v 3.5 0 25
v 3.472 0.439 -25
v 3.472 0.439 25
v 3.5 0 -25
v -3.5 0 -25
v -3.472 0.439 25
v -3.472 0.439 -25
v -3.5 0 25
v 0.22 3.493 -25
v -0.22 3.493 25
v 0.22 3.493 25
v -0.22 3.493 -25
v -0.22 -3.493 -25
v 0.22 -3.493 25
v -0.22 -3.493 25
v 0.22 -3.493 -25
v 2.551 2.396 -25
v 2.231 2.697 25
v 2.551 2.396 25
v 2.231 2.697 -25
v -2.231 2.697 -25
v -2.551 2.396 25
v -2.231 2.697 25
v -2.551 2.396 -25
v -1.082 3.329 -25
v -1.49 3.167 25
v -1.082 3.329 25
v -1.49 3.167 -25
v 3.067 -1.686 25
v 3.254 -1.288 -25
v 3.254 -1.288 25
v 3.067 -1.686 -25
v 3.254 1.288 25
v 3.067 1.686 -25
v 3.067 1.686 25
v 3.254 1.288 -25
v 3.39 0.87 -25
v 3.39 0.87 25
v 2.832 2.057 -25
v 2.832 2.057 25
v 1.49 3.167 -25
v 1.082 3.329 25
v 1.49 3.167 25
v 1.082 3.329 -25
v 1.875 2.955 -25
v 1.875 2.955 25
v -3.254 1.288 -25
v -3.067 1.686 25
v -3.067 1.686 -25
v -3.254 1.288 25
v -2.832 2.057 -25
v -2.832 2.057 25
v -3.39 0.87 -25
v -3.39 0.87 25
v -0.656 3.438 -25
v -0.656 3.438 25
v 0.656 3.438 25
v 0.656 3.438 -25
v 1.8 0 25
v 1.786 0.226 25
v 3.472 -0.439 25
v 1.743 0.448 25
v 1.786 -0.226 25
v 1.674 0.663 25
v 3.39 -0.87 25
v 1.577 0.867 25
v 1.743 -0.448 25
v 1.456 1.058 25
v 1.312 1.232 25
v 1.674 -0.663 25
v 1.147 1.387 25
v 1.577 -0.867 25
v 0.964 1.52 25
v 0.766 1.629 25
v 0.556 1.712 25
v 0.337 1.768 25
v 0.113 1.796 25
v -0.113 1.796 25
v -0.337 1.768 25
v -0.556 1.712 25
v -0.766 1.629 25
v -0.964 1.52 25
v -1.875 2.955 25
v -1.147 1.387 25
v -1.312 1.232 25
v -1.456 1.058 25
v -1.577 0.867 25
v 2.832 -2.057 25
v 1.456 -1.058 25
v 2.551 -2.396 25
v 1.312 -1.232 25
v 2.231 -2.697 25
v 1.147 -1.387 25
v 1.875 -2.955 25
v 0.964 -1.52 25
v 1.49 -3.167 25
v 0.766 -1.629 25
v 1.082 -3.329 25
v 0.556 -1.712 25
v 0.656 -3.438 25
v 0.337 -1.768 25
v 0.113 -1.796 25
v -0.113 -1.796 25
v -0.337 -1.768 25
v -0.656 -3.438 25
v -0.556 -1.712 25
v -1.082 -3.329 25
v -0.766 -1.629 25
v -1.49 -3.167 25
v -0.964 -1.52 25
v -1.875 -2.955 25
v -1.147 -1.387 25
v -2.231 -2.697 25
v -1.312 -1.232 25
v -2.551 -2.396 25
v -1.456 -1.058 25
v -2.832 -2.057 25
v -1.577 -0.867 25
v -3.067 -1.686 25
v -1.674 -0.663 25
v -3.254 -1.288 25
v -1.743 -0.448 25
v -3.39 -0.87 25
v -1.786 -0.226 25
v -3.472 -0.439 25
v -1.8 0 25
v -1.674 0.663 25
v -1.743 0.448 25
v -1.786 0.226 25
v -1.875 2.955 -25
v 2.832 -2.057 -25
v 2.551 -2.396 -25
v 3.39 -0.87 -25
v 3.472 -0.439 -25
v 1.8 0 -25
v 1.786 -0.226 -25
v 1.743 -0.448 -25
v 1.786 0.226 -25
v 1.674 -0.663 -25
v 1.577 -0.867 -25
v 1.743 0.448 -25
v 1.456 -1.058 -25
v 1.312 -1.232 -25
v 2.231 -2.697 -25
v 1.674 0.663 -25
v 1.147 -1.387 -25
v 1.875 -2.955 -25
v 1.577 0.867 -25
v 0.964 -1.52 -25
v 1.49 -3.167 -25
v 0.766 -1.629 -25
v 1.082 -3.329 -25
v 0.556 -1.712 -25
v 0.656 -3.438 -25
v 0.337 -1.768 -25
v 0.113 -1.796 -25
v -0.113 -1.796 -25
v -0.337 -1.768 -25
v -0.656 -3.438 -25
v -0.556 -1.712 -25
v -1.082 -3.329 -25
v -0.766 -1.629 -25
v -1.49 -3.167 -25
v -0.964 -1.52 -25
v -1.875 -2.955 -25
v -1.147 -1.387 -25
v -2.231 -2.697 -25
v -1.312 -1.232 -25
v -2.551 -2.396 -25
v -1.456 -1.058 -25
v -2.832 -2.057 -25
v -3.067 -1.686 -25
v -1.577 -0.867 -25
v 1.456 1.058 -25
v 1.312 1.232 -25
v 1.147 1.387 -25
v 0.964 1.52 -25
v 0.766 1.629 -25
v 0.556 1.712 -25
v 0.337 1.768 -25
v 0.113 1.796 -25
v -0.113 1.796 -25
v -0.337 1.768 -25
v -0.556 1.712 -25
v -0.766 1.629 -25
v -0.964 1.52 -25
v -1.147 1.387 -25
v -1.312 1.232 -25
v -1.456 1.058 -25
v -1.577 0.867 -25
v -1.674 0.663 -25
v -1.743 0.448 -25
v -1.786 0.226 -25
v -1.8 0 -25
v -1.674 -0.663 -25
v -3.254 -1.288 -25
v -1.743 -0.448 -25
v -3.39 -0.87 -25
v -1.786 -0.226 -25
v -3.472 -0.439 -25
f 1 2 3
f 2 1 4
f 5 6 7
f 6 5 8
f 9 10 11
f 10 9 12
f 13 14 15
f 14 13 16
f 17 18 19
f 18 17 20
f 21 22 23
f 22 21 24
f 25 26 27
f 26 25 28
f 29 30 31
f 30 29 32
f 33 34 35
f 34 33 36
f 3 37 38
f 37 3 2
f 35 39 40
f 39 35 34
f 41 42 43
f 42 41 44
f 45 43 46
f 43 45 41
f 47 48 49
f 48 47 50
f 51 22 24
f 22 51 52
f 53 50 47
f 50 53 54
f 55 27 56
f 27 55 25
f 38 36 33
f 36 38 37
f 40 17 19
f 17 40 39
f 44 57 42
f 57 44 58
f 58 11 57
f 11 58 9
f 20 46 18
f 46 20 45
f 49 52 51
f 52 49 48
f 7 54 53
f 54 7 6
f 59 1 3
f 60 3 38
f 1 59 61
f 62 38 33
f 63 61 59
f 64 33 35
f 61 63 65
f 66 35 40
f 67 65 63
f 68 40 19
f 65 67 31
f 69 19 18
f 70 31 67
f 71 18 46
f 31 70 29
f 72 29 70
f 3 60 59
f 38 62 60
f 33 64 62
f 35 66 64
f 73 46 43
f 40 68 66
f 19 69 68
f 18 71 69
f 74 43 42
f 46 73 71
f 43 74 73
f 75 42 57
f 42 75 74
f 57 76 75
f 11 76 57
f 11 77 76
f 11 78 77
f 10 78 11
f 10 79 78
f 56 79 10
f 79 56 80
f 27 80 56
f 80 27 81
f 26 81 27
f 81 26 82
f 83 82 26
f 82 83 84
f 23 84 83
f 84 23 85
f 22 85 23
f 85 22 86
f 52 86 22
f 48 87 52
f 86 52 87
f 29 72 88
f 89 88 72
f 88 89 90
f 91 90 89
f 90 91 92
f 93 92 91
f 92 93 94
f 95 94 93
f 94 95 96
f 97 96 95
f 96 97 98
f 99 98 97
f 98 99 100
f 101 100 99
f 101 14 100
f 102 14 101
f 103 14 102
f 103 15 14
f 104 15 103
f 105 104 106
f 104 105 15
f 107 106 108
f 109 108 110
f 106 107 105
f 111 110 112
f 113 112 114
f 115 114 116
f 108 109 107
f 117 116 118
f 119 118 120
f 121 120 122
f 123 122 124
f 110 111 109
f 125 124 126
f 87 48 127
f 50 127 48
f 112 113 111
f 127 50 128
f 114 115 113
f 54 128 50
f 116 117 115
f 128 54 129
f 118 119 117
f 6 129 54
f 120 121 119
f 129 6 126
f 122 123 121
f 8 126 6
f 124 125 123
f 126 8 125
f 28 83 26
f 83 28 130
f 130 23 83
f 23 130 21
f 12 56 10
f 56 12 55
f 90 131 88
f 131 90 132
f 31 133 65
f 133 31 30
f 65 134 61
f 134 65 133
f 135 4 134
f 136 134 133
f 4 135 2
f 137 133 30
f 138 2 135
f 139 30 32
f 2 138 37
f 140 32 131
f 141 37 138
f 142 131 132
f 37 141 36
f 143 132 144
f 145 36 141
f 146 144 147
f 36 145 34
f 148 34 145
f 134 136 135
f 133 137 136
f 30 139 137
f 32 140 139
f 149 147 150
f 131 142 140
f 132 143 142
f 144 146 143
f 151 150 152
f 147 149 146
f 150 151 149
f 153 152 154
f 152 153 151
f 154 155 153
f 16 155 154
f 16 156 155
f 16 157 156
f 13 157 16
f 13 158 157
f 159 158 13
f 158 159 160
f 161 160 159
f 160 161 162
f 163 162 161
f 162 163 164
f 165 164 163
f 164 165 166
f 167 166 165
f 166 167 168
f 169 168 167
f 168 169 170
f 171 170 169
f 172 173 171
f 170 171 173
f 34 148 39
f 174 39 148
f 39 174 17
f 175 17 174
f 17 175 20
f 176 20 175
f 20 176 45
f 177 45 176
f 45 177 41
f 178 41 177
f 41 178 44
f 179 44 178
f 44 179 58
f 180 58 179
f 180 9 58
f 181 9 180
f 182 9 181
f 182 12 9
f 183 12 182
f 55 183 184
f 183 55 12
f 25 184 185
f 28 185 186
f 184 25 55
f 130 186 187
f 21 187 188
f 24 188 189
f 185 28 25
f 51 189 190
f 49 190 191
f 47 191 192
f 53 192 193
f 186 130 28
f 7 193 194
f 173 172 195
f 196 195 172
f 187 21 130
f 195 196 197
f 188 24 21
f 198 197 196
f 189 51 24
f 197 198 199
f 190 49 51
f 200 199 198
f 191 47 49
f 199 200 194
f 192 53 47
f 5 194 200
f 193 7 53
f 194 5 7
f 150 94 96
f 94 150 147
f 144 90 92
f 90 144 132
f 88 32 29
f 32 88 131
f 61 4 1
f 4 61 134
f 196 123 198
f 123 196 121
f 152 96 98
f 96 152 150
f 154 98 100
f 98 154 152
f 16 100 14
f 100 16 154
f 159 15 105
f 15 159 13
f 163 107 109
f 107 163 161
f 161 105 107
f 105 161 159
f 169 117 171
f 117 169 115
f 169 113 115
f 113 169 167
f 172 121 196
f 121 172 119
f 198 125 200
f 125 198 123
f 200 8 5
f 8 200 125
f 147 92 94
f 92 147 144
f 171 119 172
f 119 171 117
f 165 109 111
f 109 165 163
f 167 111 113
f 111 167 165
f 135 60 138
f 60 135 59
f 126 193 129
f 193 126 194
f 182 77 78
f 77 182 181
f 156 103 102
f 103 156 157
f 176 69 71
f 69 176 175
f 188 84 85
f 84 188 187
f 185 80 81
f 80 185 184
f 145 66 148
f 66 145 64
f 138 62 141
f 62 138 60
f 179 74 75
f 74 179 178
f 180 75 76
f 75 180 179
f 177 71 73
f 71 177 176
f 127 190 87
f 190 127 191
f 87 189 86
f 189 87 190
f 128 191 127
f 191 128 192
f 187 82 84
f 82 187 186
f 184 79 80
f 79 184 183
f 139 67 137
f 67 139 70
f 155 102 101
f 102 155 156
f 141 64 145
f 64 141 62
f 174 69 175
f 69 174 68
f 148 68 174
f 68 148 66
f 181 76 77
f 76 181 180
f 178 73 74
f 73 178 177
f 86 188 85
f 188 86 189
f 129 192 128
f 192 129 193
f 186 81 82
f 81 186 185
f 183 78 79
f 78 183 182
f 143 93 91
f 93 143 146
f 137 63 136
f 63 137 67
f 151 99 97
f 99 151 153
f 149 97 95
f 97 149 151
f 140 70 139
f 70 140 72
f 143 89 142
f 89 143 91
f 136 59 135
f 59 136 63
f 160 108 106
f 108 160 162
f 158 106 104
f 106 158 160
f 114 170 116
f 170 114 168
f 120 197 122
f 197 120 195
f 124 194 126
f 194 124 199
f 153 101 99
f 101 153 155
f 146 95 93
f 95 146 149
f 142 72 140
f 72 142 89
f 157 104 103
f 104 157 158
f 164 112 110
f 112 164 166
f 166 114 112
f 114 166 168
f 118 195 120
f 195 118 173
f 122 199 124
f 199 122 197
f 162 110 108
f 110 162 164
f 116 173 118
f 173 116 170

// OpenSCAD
$fn = 50;


difference() {
	union() {
		translate(v = [0, 0, -25.0000000000]) {
			cylinder(h = 50, r = 3.5000000000);
		}
	}
	union() {
		translate(v = [0, 0, -100.0000000000]) {
			cylinder(h = 200, r = 1.8000000000);
		}
	}
}
